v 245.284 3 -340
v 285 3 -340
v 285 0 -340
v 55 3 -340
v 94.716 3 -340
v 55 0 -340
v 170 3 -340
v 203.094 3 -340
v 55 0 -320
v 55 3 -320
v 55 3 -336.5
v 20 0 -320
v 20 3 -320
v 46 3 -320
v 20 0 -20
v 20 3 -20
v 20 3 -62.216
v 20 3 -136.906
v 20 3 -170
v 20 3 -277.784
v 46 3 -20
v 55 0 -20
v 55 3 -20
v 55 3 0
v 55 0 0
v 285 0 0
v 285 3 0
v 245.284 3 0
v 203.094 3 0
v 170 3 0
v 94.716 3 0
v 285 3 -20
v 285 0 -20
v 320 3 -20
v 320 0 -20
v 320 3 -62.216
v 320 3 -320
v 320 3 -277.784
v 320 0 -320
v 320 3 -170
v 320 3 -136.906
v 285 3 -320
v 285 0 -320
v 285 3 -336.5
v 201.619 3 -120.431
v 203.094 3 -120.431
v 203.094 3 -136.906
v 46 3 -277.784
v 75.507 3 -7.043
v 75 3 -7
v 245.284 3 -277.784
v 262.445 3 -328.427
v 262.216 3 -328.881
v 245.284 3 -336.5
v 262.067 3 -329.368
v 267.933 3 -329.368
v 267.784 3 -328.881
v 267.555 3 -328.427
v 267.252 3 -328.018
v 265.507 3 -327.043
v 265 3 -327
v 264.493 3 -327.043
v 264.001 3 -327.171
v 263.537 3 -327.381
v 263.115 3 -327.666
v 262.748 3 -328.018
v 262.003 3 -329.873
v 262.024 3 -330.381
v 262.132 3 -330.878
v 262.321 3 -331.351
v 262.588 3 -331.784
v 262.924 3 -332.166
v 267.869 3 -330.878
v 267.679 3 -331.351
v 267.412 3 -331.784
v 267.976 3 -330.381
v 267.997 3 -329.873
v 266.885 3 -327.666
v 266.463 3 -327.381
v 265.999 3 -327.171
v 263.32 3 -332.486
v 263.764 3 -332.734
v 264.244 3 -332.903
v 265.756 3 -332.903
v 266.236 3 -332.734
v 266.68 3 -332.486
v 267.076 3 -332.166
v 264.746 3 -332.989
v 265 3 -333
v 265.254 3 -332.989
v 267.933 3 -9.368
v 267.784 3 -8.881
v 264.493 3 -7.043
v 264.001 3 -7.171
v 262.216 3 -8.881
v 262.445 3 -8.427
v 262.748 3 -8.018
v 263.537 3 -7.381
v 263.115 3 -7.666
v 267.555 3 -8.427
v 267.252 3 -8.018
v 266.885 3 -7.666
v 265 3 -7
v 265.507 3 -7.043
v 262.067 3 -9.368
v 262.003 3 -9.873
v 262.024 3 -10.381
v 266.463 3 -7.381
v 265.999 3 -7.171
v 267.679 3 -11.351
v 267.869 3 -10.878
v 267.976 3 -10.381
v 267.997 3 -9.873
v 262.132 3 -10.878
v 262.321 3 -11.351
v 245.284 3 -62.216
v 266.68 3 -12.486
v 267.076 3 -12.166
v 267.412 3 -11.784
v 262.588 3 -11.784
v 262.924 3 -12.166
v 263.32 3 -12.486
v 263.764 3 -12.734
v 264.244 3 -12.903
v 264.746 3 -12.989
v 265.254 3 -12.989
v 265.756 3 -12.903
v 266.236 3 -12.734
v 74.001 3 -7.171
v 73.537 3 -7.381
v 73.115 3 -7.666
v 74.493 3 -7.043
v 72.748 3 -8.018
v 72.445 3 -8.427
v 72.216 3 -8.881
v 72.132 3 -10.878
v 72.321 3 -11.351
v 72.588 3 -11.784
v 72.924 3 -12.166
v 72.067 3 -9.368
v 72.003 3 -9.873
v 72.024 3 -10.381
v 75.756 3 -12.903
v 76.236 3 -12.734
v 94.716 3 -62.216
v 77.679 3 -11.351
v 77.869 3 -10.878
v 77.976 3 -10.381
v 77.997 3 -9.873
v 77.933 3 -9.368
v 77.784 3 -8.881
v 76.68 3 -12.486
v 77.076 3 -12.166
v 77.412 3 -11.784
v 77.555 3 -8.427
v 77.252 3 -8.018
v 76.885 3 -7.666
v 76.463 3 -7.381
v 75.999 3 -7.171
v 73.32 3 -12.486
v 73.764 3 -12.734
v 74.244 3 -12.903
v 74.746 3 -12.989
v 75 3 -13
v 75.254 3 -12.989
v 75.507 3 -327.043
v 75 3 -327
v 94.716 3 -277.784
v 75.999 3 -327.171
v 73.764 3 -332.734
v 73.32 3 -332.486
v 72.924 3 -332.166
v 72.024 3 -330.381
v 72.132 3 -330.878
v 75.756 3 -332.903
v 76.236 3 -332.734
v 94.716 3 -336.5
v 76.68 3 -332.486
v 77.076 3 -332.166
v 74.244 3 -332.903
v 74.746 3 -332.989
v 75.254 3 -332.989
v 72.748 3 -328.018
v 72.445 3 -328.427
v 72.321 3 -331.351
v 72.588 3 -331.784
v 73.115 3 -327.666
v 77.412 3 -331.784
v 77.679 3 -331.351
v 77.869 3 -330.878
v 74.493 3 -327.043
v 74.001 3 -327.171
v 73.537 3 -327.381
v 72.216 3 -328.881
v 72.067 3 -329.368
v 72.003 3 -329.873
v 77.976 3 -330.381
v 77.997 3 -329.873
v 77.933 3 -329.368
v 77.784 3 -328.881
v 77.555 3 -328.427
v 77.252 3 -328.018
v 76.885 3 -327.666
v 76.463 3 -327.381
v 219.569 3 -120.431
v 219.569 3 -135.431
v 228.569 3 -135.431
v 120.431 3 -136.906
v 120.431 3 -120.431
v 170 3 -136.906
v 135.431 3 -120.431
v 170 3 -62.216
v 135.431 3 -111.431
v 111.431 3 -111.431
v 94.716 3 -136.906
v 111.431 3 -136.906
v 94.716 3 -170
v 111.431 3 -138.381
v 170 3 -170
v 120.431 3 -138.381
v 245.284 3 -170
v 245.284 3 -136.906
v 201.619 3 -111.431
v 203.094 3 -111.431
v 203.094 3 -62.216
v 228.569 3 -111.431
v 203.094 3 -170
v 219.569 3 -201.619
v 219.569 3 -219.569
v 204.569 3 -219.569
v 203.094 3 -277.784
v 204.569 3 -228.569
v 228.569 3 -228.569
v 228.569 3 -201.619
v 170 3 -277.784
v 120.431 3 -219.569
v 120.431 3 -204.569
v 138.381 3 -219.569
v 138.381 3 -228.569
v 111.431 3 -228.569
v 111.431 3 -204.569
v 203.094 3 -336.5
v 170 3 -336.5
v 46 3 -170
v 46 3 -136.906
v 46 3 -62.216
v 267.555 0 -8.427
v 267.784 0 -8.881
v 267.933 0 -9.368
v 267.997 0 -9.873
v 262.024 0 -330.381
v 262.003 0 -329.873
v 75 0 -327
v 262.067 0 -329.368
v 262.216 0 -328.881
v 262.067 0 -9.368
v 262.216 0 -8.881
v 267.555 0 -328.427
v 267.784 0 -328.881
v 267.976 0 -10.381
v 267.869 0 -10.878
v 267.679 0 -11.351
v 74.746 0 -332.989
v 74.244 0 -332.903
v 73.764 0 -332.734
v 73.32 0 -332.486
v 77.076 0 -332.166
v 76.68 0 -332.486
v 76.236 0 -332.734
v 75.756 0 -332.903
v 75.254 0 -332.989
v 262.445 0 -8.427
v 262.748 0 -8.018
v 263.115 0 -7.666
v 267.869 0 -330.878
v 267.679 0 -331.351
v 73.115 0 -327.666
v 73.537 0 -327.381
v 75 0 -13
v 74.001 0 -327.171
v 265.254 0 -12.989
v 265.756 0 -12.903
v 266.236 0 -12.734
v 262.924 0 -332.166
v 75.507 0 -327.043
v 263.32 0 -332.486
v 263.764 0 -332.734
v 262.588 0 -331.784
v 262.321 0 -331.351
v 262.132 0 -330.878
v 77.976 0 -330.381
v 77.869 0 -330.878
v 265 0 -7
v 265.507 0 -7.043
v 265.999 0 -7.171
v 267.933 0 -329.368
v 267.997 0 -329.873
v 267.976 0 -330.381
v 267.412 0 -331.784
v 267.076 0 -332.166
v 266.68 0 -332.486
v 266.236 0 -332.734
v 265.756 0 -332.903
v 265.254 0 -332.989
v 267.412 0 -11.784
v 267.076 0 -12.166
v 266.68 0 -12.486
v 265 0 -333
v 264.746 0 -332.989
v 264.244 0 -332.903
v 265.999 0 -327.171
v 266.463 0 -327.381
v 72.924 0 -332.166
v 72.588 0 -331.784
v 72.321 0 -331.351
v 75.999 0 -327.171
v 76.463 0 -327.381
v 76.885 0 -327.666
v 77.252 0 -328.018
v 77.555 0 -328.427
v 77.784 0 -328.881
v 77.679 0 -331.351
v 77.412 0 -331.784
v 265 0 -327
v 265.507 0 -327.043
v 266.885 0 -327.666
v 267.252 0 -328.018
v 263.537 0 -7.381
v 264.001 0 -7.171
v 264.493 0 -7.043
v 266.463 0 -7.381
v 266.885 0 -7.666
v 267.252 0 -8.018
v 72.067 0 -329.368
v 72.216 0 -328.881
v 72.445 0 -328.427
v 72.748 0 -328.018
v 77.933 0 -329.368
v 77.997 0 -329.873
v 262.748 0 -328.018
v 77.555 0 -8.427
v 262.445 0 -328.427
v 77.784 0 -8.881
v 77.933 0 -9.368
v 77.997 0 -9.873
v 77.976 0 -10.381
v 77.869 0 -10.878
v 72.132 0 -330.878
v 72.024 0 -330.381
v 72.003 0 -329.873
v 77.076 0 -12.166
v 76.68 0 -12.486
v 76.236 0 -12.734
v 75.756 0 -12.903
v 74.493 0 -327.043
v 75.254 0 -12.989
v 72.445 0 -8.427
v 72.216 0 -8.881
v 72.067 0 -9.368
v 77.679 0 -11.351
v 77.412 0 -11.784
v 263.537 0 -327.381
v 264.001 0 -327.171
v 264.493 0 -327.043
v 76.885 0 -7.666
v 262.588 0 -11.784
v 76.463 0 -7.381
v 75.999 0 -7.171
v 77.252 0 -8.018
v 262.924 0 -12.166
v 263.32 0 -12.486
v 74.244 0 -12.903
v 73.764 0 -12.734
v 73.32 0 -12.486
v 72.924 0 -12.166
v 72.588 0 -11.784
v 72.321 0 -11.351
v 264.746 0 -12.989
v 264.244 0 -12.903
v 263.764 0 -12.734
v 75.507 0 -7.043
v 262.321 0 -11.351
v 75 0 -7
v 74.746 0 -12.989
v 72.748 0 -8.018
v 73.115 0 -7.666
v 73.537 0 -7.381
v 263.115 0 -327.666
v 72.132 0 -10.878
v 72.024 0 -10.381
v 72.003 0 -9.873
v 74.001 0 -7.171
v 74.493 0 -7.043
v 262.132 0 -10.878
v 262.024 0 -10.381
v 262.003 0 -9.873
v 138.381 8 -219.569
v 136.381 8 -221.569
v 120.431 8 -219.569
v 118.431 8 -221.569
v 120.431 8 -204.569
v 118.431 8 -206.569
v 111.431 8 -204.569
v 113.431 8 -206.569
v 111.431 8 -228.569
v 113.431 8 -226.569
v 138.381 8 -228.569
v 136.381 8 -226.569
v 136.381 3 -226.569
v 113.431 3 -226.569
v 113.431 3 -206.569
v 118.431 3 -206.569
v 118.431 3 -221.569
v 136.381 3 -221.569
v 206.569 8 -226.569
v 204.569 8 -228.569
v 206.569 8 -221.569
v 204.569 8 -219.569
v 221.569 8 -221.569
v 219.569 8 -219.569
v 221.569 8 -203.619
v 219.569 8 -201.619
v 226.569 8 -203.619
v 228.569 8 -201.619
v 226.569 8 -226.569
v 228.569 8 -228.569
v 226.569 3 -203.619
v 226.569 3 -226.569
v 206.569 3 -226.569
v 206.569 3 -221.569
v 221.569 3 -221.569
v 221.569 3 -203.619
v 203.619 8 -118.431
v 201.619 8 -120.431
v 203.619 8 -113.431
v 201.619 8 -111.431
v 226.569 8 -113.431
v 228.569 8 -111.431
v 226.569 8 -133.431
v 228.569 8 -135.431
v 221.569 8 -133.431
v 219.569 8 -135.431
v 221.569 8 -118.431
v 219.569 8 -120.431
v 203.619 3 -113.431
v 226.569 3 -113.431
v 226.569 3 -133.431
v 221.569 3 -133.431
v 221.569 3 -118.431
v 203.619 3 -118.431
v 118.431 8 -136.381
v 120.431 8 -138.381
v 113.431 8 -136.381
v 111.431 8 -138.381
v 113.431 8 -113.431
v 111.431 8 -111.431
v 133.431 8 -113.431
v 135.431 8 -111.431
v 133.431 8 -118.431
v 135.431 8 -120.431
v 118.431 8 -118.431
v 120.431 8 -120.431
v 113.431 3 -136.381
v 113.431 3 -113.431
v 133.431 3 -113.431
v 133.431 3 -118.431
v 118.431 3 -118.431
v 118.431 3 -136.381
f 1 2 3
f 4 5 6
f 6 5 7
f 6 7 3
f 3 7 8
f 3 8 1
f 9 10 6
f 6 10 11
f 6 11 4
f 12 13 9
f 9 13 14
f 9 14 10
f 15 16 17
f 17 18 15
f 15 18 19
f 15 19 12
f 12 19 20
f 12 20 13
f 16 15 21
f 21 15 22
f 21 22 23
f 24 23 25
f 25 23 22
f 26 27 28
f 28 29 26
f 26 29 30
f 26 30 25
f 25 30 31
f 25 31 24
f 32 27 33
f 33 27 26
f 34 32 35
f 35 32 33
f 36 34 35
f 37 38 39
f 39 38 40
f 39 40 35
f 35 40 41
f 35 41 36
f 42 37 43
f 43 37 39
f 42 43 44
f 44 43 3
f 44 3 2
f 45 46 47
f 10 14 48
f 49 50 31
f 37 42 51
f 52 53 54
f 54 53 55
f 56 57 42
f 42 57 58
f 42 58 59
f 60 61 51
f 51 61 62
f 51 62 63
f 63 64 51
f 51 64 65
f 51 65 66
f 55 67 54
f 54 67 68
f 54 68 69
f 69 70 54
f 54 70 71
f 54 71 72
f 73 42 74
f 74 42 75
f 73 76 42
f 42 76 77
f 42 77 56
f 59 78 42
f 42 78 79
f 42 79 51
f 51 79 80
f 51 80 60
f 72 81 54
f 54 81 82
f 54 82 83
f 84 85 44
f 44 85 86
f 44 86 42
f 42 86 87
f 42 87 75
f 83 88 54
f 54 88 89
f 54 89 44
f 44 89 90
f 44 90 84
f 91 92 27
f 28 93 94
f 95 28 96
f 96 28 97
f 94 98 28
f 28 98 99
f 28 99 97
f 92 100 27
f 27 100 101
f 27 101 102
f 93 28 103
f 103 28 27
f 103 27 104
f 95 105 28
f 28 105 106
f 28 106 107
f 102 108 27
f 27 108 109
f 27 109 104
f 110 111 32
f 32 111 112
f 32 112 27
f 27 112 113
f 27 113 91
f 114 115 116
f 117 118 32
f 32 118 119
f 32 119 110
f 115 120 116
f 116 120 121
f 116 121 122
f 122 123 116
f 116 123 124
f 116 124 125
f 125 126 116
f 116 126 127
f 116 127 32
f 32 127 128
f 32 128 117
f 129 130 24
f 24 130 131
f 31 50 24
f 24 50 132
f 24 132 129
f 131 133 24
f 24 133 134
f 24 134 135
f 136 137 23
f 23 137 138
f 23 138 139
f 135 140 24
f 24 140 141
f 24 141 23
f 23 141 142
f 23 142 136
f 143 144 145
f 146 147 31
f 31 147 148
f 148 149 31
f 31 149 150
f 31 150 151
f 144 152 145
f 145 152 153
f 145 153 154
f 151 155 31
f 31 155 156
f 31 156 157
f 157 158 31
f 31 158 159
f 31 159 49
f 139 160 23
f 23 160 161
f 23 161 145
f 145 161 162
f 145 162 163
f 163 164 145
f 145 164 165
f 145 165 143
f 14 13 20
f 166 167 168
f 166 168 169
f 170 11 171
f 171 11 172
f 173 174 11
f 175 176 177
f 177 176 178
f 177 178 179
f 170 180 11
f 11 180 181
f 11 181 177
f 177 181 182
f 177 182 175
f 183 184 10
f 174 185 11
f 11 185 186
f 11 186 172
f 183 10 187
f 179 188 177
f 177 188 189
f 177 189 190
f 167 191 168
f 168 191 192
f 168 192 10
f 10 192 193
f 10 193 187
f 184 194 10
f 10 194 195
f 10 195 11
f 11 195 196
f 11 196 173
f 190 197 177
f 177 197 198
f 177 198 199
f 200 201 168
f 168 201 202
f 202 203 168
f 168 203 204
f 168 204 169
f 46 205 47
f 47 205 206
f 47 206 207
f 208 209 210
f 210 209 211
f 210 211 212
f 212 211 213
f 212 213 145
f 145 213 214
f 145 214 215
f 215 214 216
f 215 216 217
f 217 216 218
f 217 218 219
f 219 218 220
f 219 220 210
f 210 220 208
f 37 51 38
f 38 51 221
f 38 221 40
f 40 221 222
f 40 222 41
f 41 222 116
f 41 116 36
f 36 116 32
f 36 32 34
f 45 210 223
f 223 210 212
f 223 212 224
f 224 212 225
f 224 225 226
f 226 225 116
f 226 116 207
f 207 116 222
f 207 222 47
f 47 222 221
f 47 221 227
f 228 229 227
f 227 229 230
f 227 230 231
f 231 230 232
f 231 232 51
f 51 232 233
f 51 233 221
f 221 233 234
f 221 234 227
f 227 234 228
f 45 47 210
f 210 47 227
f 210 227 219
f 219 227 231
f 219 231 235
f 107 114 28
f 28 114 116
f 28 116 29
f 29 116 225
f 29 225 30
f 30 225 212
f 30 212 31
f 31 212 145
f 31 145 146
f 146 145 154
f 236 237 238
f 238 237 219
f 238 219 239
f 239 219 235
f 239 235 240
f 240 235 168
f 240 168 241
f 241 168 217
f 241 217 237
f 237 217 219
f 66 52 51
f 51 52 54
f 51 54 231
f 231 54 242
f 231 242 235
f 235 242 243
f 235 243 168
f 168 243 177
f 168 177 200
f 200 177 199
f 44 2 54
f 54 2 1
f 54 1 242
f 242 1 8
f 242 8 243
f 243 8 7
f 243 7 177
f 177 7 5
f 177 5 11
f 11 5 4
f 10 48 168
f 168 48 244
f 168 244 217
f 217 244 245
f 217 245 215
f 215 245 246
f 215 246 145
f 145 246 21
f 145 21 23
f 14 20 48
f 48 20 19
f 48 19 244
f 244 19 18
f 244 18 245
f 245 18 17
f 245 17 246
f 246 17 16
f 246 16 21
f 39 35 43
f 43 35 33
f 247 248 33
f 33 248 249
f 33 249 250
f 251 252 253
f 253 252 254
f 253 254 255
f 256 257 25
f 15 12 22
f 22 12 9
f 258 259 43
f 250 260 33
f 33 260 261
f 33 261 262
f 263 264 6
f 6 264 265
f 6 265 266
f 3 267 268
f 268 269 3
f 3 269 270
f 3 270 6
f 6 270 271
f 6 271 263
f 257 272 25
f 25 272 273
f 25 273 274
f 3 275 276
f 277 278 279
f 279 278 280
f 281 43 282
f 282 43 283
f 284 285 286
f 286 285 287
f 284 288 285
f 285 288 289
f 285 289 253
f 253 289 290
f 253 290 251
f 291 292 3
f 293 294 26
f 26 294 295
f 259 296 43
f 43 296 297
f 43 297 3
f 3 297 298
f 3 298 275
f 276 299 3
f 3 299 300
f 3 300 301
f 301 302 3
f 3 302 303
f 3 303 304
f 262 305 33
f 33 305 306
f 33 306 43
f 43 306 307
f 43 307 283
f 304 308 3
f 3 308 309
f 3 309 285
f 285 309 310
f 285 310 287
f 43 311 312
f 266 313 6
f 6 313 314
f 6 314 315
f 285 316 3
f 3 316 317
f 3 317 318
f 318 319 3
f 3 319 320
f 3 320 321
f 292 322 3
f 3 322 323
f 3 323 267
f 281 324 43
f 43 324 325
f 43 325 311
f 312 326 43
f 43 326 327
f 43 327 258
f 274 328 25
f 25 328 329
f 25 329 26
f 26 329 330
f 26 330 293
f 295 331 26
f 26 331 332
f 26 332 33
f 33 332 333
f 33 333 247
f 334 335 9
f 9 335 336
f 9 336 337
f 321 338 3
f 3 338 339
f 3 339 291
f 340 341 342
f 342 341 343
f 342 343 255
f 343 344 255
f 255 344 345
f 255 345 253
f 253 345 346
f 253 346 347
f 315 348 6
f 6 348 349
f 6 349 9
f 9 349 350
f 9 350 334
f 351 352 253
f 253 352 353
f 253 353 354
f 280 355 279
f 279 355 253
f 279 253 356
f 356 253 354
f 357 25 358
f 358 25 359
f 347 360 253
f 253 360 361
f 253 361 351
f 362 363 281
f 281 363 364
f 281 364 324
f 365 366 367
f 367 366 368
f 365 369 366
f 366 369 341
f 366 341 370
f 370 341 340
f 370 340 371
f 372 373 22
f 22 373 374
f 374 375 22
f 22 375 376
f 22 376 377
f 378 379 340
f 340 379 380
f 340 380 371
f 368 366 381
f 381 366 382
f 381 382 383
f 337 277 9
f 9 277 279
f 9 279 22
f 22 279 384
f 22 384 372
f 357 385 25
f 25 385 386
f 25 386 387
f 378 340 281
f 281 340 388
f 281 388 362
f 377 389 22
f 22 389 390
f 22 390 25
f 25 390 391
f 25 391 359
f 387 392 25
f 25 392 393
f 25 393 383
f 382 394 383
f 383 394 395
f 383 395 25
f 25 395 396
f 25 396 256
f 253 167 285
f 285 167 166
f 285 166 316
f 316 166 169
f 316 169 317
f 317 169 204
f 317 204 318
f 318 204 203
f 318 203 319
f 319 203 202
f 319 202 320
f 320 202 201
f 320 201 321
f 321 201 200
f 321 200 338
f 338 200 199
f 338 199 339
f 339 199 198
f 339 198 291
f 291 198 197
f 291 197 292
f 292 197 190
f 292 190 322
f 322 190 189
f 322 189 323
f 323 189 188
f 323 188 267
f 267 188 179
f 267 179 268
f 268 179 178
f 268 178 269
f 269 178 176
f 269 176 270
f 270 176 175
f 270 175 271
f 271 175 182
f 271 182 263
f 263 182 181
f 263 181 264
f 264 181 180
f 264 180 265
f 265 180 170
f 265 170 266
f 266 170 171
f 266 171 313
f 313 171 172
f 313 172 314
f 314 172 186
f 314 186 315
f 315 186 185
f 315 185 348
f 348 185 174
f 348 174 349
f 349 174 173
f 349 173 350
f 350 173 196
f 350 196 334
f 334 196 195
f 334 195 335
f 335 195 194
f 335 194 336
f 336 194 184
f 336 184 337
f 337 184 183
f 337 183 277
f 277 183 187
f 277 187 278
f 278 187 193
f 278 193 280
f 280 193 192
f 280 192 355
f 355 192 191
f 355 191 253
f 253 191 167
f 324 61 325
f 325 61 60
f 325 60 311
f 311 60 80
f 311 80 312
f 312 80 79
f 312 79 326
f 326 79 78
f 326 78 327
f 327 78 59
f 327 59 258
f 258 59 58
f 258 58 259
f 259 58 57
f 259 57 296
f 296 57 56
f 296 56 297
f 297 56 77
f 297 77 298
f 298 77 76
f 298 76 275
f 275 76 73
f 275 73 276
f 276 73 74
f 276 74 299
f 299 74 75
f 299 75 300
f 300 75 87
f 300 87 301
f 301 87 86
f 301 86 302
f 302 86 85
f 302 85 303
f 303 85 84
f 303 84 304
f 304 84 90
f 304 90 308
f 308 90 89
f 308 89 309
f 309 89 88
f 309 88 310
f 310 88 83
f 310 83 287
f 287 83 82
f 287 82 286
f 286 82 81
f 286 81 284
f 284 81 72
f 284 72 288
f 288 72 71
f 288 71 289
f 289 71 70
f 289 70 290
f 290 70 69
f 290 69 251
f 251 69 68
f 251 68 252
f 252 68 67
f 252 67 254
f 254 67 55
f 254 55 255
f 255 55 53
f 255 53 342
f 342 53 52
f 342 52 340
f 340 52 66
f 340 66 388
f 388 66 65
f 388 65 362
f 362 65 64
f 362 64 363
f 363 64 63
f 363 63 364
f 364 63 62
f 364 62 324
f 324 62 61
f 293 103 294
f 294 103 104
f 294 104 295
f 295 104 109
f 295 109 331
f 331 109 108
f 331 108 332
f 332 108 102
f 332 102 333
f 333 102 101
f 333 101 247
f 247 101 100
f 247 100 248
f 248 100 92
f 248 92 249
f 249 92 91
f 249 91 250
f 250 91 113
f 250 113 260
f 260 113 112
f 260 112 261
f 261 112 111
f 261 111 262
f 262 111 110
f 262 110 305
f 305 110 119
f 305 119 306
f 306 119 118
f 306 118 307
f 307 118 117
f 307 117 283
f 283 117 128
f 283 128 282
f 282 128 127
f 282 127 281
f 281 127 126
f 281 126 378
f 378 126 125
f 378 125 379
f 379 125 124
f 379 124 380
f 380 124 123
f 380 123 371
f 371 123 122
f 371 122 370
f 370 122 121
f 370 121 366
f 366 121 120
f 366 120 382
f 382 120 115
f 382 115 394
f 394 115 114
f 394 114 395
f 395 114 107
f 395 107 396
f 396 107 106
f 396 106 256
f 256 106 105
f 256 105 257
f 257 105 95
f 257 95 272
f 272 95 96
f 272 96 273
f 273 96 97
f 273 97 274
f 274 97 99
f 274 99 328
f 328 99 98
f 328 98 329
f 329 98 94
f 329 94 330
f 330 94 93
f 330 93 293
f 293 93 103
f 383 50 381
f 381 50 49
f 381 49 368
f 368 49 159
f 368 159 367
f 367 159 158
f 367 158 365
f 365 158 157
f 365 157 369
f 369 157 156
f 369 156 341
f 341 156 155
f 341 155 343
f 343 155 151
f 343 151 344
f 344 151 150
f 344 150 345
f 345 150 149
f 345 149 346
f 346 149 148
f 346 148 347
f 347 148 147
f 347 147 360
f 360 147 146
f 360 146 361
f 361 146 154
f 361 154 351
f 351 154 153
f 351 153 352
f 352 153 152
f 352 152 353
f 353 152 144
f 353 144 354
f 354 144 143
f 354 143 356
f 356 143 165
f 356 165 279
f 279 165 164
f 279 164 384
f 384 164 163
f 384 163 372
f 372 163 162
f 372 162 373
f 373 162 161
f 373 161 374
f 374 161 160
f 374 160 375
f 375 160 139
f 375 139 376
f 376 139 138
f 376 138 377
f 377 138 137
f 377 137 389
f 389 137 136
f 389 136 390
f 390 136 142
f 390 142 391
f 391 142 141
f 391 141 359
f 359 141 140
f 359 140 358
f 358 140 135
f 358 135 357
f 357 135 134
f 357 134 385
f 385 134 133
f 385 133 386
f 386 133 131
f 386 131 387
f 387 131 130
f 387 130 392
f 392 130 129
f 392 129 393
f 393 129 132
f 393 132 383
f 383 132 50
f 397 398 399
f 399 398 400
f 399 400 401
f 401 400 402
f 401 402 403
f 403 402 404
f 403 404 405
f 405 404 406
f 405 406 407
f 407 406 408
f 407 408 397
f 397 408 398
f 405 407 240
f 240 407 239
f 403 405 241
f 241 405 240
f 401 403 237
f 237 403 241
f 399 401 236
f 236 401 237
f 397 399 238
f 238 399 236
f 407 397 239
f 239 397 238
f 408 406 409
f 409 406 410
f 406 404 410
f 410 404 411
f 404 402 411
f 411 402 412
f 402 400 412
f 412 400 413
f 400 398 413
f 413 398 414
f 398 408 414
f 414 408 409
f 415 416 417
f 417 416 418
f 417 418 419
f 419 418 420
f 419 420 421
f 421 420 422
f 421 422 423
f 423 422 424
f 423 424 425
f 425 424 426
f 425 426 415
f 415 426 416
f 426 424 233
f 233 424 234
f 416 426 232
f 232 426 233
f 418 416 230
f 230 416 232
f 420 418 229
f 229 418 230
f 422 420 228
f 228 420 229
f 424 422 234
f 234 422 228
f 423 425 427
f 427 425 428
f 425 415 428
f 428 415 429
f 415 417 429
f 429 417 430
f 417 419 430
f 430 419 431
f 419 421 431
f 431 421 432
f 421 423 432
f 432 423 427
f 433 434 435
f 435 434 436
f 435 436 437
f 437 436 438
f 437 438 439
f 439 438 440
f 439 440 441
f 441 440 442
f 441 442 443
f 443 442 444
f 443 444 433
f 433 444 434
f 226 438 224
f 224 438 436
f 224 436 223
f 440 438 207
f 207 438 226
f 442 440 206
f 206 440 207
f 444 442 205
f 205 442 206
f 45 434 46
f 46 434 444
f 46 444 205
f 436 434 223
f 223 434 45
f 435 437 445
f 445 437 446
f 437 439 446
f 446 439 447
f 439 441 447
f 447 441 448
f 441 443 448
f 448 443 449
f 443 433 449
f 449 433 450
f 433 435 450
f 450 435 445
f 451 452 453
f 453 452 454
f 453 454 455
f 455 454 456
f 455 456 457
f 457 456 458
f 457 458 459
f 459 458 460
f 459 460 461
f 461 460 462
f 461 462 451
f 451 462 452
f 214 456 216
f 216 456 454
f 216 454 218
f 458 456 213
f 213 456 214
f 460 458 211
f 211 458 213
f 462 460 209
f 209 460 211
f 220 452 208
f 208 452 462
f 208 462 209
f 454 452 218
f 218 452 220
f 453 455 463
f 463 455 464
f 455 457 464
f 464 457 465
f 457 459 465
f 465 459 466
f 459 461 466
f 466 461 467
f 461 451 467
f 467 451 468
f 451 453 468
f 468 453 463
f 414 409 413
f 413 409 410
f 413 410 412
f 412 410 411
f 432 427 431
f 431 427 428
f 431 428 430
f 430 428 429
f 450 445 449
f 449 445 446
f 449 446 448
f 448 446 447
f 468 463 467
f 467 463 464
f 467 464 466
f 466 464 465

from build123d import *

# Parameters (mm, degrees)
EXTRUDE_1_DEPTH     = 3
SKETCH_2_R          = 3
CUT_EXTRUDE_1_DEPTH = 3
EXTRUDE_2_DEPTH     = 5


with BuildPart() as part:
    # 草图1 → 凸台-拉伸1 (new body)
    with BuildSketch(Plane(origin=(0, 0, 0), x_dir=(1, 0, 0), z_dir=(0, 1, 0))):
        Polygon((55, 0), (285, 0), (285, 20), (320, 20), (320, 55), (320, 285), (320, 320), (285, 320), (285, 340), (55, 340), (55, 320), (20, 320), (20, 285), (20, 55), (20, 20), (55, 20), align=None)
    extrude(amount=EXTRUDE_1_DEPTH)

    # 草图2 → 切除-拉伸1 (cut)
    with BuildSketch(Plane(origin=(0, 3, 0), x_dir=(1, 0, 0), z_dir=(0, 1, 0))):
        with Locations(Location((75, 330, 0), (0, 0, 270))):
            Circle(SKETCH_2_R)
        with Locations(Location((265, 330, 0), (0, 0, 90))):
            Circle(SKETCH_2_R)
        with Locations(Location((265, 10, 0), (0, 0, 270))):
            Circle(SKETCH_2_R)
        with Locations(Location((75, 10, 0), (0, 0, 90))):
            Circle(SKETCH_2_R)
    extrude(amount=-CUT_EXTRUDE_1_DEPTH, mode=Mode.SUBTRACT)

    # 草图3 → 凸台-拉伸2 (add)
    # profile 1 of 4: a face of its own
    with BuildSketch(Plane(origin=(0, 3, 0), x_dir=(1, 0, 0), z_dir=(0, 1, 0))):
        Polygon((111.431457505, 228.568542495), (111.431457505, 204.568542495), (120.431457505, 204.568542495), (120.431457505, 219.568542495), (138.38115839, 219.568542495), (138.38115839, 228.568542495), align=None)
        Polygon((113.431457505, 226.568542495), (113.431457505, 206.568542495), (118.431457505, 206.568542495), (118.431457505, 221.568542495), (136.38115839, 221.568542495), (136.38115839, 226.568542495), align=None, mode=Mode.SUBTRACT)
    # profile 2 of 4: a face of its own
    with BuildSketch(Plane(origin=(0, 3, 0), x_dir=(1, 0, 0), z_dir=(0, 1, 0))):
        Polygon((228.568542495, 228.568542495), (204.568542495, 228.568542495), (204.568542495, 219.568542495), (219.568542495, 219.568542495), (219.568542495, 201.61884161), (228.568542495, 201.61884161), align=None)
        Polygon((226.568542495, 226.568542495), (206.568542495, 226.568542495), (206.568542495, 221.568542495), (221.568542495, 221.568542495), (221.568542495, 203.61884161), (226.568542495, 203.61884161), align=None, mode=Mode.SUBTRACT)
    # profile 3 of 4: a face of its own
    with BuildSketch(Plane(origin=(0, 3, 0), x_dir=(1, 0, 0), z_dir=(0, 1, 0))):
        Polygon((228.568542495, 111.431457505), (228.568542495, 135.431457505), (219.568542495, 135.431457505), (219.568542495, 120.431457505), (201.61884161, 120.431457505), (201.61884161, 111.431457505), align=None)
        Polygon((226.568542495, 113.431457505), (226.568542495, 133.431457505), (221.568542495, 133.431457505), (221.568542495, 118.431457505), (203.61884161, 118.431457505), (203.61884161, 113.431457505), align=None, mode=Mode.SUBTRACT)
    # profile 4 of 4: a face of its own
    with BuildSketch(Plane(origin=(0, 3, 0), x_dir=(1, 0, 0), z_dir=(0, 1, 0))):
        Polygon((111.431457505, 111.431457505), (135.431457505, 111.431457505), (135.431457505, 120.431457505), (120.431457505, 120.431457505), (120.431457505, 138.38115839), (111.431457505, 138.38115839), align=None)
        Polygon((113.431457505, 113.431457505), (133.431457505, 113.431457505), (133.431457505, 118.431457505), (118.431457505, 118.431457505), (118.431457505, 136.38115839), (113.431457505, 136.38115839), align=None, mode=Mode.SUBTRACT)
    extrude(amount=EXTRUDE_2_DEPTH)


solid = part.part
